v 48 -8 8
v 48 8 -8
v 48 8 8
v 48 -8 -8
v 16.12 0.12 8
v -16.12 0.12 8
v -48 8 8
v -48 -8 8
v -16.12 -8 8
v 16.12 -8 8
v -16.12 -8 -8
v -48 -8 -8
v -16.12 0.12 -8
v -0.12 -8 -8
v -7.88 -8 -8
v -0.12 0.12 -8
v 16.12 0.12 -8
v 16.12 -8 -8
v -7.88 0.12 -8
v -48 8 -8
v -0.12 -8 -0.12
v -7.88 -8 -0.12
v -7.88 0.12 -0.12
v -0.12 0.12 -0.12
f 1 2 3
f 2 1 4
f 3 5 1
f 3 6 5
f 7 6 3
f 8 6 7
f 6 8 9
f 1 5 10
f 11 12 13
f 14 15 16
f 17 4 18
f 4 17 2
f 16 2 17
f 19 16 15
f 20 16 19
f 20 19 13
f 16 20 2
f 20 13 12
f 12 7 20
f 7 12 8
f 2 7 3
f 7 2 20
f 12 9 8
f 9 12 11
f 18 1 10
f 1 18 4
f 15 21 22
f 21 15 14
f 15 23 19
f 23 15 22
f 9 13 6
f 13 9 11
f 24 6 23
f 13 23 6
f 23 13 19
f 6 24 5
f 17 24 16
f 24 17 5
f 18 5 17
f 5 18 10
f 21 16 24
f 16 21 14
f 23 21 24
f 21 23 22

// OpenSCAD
measure = 8;
dd = 0.12/measure; 

scale([measure,measure,measure]) difference() {
    cube(size = [12,2,2], center = true);
    translate([-1.5,-0.5,0]) 
        cube(size = [1 + 2*dd, 1 + 2*dd, 2 + 2*dd], center=true);
    translate([1,-0.5,0]) 
        cube(size=[2 + 2*dd, 1 + 2*dd, 2 + 2*dd], center=true);
    translate([-0.5,-0.5,0.5]) 
        cube(size=[1 + 2*dd, 1 + 2*dd, 1 + 2*dd], center=true);
}
